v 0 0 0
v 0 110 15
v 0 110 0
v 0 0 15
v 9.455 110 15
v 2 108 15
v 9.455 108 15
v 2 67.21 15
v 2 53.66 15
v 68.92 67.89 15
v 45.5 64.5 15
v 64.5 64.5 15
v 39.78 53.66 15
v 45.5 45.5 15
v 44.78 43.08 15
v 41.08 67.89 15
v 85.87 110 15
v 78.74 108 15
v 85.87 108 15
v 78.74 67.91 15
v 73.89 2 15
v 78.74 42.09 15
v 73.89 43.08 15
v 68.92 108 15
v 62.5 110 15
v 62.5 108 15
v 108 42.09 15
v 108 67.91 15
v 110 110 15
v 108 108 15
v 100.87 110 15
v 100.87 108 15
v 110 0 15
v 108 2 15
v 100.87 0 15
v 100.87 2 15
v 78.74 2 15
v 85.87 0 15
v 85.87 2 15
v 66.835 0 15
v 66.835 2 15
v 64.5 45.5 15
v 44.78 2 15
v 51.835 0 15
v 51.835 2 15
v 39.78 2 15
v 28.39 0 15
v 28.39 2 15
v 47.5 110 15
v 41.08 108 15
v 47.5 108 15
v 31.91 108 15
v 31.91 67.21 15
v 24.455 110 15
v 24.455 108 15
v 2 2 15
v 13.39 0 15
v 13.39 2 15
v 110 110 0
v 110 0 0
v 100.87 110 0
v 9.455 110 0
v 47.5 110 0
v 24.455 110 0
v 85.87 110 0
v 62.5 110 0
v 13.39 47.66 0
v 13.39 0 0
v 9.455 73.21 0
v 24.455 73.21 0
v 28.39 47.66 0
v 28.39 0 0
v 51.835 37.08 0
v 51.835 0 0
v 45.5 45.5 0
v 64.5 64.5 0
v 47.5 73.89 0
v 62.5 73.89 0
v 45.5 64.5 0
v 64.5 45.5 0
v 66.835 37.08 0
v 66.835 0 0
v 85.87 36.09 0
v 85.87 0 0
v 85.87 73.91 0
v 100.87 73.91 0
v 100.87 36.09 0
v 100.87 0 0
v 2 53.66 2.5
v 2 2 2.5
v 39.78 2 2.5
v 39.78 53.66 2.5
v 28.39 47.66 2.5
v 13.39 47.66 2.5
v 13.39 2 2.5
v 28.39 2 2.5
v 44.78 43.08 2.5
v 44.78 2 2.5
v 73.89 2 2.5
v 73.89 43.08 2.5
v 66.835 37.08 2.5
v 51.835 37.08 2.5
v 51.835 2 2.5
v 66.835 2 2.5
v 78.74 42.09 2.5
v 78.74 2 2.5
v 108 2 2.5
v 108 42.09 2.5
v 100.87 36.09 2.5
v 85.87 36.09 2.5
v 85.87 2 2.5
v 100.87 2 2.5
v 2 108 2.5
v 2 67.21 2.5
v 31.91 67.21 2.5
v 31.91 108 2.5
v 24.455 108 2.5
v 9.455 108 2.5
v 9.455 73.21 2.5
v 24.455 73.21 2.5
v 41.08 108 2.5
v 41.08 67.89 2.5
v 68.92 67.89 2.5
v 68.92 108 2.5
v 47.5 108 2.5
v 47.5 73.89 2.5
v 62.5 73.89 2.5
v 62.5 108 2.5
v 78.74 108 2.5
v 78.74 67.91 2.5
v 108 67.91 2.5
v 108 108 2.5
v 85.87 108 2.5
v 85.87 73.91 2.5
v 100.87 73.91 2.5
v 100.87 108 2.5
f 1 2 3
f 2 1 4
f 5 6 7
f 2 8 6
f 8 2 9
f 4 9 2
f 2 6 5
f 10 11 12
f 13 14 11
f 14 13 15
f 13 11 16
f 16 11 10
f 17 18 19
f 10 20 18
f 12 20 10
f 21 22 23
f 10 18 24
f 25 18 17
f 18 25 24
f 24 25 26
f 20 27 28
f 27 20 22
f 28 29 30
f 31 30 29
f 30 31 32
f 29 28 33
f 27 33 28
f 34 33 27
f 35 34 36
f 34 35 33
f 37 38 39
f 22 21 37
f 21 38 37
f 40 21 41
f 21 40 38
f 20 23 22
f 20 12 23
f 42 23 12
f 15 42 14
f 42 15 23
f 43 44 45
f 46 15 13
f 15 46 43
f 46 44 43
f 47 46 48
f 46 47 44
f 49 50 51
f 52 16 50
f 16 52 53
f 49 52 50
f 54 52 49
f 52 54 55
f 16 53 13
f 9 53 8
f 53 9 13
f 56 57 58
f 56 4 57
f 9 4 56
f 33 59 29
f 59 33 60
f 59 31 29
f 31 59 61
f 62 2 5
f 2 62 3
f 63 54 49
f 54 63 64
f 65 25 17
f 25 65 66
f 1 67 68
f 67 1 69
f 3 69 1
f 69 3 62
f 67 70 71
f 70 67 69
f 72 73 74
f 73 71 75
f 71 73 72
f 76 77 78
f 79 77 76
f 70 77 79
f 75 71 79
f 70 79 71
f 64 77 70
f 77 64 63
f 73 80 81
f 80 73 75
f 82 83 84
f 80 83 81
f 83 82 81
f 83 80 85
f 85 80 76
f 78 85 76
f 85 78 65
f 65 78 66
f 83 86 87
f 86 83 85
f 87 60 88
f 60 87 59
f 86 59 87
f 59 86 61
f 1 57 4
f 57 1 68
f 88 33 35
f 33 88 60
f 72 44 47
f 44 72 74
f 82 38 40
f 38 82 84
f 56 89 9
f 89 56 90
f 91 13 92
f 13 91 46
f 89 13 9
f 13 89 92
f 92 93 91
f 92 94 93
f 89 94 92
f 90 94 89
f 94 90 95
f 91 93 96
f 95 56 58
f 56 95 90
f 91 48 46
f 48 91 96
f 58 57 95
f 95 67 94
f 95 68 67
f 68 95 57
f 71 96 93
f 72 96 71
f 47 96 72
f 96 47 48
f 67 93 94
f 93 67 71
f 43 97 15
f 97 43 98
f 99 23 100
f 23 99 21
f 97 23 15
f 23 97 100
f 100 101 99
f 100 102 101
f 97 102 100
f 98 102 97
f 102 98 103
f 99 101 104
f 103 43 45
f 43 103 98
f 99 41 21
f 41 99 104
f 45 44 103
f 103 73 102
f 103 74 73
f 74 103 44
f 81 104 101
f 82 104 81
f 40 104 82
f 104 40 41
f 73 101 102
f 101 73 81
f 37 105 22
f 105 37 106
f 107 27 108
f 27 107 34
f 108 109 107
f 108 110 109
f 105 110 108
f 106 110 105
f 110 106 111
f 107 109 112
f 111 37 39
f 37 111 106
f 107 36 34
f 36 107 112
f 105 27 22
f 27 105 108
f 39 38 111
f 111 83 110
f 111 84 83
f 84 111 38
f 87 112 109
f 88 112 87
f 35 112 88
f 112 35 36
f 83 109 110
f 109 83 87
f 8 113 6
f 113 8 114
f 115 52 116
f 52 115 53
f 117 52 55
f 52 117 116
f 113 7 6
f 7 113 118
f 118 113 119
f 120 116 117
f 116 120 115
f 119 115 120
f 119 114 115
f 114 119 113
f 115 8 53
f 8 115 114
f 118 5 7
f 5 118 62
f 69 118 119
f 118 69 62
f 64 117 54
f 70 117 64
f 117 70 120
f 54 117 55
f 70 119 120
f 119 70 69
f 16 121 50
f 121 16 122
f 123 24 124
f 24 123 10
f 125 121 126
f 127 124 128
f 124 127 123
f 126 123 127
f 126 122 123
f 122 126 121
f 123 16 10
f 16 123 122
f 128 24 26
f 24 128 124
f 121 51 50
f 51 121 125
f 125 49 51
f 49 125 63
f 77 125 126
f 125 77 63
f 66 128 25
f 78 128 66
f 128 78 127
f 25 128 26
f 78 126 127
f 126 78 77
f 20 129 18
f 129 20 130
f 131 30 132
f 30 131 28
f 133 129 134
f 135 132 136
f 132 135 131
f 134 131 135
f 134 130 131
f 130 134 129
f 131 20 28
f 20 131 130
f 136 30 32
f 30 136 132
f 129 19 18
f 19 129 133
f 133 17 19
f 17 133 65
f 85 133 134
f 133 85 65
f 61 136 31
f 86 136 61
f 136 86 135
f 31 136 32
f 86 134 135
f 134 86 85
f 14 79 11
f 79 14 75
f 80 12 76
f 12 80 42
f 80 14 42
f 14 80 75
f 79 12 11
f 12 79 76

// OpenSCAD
length = 110;
width = 110;
height = 15;

//Based on magnet size:
magnetBaseInnerDiameter = 19;
magnetHeight = 4.0;

//            earth demon x 6, 50.66 x 36.78, base 30.52
//			flame demon x 6, 40.08 x 28.11x base 22.29
//			night demon x 6, 39.16 x 28.63x base 27
//			
//			wind demon x 6, 39.79 x 28.91, full (ish) base
//			frost demon x 6, 39.11 x 26.84, base 21.59
//			sun demon x 6, 39.09 x 28.26, base26.57

token1Width = 50.66 + 1;
token1Length = 36.78 + 1;
token1Height = 12 + .5;
token1SquareLipWidthRemainder = token1Length - 15;
token1SquareLipLengthRemainder = 4;

token2Width = 40.08 + 1;
token2Length = 28.11 + 1;
token2Height = 12 + .5;
token2SquareLipWidthRemainder = token2Length - 15;
token2SquareLipLengthRemainder = 4;

token3Width = 39.16 + 1;
token3Length = 28.63 + 1;
token3Height = 12 + .5;
token3SquareLipWidthRemainder = token3Length - 15;
token3SquareLipLengthRemainder = 4;

token4Width = 39.79 + 1;
token4Length = 28.91 + 1;
token4Height = 12 + .5;
token4SquareLipWidthRemainder = token4Length - 15;
token4SquareLipLengthRemainder = 4;

token5Width = 39.11 + 1;
token5Length = 26.84 + 1;
token5Height = 12 + .5;
token5SquareLipWidthRemainder = token5Length - 15;
token5SquareLipLengthRemainder = 4;

token6Width = 39.09 + 1;
token6Length = 28.26 + 1;
token6Height = 12 + .5;
token6SquareLipWidthRemainder = token6Length - 15;
token6SquareLipLengthRemainder = 4;

spaceBetweenCircles = 2;
wallThickness = spaceBetweenCircles;



difference(){
    cube([length, width, height]);


//----------------------------------
translate(
        [
            wallThickness,
            wallThickness,
            height - token1Height
        ])
        cube([token1Length,token1Width, token1Height]);
    translate([
        wallThickness + token1SquareLipWidthRemainder/2,
        0,
        0])
        cube([
            token1Length - token1SquareLipWidthRemainder,
            token1Width - token1SquareLipLengthRemainder,
            height]);

translate(
        [
            wallThickness * 2 + token1Length + 3,
            wallThickness,
            height - token2Height
        ])
        cube([token2Length,token2Width, token2Height]);
    translate([
        wallThickness * 2 + token1Length + token2SquareLipWidthRemainder/2  + 3,
        0,
        0])
        cube([
            token2Length - token2SquareLipWidthRemainder,
            token2Width - token2SquareLipLengthRemainder,
            height]);
            
translate(
        [
            length - (wallThickness + token6Length),
            wallThickness,
            height - token6Height
        ])
        cube([token6Length,token6Width, token6Height]);
    translate([
        length - (wallThickness + token6Length) + token6SquareLipWidthRemainder/2,
        0,
        0])
        cube([
            token6Length - token6SquareLipWidthRemainder,
            token6Width - token6SquareLipLengthRemainder,
            height]);

            
//---------------------------------------------------------------------
    
    translate(
        [
            wallThickness,
            width - (wallThickness + token4Width),
            height - token4Height
        ])
        cube([token4Length,token4Width, token4Height]);
    translate([
        wallThickness + token4SquareLipWidthRemainder/2,
        width - (token4Width - token4SquareLipLengthRemainder),
        0])
        cube([
            token4Length - token4SquareLipWidthRemainder,
            token4Width - token4SquareLipLengthRemainder,
            height]);
            
    translate(
        [
            length/2 - token5Length/2,
            width - (wallThickness + token5Width),
            height - token5Height
        ])
        cube([token5Length,token5Width, token5Height]);
    translate([
        length/2 - (token5Length - token5SquareLipWidthRemainder)/2,
        width - (token5Width - token5SquareLipLengthRemainder),
        0])
        cube([
            token5Length - token5SquareLipWidthRemainder,
            token5Width - token5SquareLipLengthRemainder,
            height]);

    translate(
        [
            length - (wallThickness + token6Length),
            width - (wallThickness + token6Width),
            height - token6Height
        ])
        cube([token6Length,token6Width, token6Height]);
    translate([
        length - (wallThickness + token6Length) + token6SquareLipWidthRemainder/2,
        width - (token6Width - token6SquareLipLengthRemainder),
        0])
        cube([
            token6Length - token6SquareLipWidthRemainder,
            token6Width - token6SquareLipLengthRemainder,
            height]);       

//----------------------------------------
   
    translate([length/2 - magnetBaseInnerDiameter/2, width/2 - magnetBaseInnerDiameter/2, 0])
        cube([magnetBaseInnerDiameter, magnetBaseInnerDiameter, height]);
        

}
